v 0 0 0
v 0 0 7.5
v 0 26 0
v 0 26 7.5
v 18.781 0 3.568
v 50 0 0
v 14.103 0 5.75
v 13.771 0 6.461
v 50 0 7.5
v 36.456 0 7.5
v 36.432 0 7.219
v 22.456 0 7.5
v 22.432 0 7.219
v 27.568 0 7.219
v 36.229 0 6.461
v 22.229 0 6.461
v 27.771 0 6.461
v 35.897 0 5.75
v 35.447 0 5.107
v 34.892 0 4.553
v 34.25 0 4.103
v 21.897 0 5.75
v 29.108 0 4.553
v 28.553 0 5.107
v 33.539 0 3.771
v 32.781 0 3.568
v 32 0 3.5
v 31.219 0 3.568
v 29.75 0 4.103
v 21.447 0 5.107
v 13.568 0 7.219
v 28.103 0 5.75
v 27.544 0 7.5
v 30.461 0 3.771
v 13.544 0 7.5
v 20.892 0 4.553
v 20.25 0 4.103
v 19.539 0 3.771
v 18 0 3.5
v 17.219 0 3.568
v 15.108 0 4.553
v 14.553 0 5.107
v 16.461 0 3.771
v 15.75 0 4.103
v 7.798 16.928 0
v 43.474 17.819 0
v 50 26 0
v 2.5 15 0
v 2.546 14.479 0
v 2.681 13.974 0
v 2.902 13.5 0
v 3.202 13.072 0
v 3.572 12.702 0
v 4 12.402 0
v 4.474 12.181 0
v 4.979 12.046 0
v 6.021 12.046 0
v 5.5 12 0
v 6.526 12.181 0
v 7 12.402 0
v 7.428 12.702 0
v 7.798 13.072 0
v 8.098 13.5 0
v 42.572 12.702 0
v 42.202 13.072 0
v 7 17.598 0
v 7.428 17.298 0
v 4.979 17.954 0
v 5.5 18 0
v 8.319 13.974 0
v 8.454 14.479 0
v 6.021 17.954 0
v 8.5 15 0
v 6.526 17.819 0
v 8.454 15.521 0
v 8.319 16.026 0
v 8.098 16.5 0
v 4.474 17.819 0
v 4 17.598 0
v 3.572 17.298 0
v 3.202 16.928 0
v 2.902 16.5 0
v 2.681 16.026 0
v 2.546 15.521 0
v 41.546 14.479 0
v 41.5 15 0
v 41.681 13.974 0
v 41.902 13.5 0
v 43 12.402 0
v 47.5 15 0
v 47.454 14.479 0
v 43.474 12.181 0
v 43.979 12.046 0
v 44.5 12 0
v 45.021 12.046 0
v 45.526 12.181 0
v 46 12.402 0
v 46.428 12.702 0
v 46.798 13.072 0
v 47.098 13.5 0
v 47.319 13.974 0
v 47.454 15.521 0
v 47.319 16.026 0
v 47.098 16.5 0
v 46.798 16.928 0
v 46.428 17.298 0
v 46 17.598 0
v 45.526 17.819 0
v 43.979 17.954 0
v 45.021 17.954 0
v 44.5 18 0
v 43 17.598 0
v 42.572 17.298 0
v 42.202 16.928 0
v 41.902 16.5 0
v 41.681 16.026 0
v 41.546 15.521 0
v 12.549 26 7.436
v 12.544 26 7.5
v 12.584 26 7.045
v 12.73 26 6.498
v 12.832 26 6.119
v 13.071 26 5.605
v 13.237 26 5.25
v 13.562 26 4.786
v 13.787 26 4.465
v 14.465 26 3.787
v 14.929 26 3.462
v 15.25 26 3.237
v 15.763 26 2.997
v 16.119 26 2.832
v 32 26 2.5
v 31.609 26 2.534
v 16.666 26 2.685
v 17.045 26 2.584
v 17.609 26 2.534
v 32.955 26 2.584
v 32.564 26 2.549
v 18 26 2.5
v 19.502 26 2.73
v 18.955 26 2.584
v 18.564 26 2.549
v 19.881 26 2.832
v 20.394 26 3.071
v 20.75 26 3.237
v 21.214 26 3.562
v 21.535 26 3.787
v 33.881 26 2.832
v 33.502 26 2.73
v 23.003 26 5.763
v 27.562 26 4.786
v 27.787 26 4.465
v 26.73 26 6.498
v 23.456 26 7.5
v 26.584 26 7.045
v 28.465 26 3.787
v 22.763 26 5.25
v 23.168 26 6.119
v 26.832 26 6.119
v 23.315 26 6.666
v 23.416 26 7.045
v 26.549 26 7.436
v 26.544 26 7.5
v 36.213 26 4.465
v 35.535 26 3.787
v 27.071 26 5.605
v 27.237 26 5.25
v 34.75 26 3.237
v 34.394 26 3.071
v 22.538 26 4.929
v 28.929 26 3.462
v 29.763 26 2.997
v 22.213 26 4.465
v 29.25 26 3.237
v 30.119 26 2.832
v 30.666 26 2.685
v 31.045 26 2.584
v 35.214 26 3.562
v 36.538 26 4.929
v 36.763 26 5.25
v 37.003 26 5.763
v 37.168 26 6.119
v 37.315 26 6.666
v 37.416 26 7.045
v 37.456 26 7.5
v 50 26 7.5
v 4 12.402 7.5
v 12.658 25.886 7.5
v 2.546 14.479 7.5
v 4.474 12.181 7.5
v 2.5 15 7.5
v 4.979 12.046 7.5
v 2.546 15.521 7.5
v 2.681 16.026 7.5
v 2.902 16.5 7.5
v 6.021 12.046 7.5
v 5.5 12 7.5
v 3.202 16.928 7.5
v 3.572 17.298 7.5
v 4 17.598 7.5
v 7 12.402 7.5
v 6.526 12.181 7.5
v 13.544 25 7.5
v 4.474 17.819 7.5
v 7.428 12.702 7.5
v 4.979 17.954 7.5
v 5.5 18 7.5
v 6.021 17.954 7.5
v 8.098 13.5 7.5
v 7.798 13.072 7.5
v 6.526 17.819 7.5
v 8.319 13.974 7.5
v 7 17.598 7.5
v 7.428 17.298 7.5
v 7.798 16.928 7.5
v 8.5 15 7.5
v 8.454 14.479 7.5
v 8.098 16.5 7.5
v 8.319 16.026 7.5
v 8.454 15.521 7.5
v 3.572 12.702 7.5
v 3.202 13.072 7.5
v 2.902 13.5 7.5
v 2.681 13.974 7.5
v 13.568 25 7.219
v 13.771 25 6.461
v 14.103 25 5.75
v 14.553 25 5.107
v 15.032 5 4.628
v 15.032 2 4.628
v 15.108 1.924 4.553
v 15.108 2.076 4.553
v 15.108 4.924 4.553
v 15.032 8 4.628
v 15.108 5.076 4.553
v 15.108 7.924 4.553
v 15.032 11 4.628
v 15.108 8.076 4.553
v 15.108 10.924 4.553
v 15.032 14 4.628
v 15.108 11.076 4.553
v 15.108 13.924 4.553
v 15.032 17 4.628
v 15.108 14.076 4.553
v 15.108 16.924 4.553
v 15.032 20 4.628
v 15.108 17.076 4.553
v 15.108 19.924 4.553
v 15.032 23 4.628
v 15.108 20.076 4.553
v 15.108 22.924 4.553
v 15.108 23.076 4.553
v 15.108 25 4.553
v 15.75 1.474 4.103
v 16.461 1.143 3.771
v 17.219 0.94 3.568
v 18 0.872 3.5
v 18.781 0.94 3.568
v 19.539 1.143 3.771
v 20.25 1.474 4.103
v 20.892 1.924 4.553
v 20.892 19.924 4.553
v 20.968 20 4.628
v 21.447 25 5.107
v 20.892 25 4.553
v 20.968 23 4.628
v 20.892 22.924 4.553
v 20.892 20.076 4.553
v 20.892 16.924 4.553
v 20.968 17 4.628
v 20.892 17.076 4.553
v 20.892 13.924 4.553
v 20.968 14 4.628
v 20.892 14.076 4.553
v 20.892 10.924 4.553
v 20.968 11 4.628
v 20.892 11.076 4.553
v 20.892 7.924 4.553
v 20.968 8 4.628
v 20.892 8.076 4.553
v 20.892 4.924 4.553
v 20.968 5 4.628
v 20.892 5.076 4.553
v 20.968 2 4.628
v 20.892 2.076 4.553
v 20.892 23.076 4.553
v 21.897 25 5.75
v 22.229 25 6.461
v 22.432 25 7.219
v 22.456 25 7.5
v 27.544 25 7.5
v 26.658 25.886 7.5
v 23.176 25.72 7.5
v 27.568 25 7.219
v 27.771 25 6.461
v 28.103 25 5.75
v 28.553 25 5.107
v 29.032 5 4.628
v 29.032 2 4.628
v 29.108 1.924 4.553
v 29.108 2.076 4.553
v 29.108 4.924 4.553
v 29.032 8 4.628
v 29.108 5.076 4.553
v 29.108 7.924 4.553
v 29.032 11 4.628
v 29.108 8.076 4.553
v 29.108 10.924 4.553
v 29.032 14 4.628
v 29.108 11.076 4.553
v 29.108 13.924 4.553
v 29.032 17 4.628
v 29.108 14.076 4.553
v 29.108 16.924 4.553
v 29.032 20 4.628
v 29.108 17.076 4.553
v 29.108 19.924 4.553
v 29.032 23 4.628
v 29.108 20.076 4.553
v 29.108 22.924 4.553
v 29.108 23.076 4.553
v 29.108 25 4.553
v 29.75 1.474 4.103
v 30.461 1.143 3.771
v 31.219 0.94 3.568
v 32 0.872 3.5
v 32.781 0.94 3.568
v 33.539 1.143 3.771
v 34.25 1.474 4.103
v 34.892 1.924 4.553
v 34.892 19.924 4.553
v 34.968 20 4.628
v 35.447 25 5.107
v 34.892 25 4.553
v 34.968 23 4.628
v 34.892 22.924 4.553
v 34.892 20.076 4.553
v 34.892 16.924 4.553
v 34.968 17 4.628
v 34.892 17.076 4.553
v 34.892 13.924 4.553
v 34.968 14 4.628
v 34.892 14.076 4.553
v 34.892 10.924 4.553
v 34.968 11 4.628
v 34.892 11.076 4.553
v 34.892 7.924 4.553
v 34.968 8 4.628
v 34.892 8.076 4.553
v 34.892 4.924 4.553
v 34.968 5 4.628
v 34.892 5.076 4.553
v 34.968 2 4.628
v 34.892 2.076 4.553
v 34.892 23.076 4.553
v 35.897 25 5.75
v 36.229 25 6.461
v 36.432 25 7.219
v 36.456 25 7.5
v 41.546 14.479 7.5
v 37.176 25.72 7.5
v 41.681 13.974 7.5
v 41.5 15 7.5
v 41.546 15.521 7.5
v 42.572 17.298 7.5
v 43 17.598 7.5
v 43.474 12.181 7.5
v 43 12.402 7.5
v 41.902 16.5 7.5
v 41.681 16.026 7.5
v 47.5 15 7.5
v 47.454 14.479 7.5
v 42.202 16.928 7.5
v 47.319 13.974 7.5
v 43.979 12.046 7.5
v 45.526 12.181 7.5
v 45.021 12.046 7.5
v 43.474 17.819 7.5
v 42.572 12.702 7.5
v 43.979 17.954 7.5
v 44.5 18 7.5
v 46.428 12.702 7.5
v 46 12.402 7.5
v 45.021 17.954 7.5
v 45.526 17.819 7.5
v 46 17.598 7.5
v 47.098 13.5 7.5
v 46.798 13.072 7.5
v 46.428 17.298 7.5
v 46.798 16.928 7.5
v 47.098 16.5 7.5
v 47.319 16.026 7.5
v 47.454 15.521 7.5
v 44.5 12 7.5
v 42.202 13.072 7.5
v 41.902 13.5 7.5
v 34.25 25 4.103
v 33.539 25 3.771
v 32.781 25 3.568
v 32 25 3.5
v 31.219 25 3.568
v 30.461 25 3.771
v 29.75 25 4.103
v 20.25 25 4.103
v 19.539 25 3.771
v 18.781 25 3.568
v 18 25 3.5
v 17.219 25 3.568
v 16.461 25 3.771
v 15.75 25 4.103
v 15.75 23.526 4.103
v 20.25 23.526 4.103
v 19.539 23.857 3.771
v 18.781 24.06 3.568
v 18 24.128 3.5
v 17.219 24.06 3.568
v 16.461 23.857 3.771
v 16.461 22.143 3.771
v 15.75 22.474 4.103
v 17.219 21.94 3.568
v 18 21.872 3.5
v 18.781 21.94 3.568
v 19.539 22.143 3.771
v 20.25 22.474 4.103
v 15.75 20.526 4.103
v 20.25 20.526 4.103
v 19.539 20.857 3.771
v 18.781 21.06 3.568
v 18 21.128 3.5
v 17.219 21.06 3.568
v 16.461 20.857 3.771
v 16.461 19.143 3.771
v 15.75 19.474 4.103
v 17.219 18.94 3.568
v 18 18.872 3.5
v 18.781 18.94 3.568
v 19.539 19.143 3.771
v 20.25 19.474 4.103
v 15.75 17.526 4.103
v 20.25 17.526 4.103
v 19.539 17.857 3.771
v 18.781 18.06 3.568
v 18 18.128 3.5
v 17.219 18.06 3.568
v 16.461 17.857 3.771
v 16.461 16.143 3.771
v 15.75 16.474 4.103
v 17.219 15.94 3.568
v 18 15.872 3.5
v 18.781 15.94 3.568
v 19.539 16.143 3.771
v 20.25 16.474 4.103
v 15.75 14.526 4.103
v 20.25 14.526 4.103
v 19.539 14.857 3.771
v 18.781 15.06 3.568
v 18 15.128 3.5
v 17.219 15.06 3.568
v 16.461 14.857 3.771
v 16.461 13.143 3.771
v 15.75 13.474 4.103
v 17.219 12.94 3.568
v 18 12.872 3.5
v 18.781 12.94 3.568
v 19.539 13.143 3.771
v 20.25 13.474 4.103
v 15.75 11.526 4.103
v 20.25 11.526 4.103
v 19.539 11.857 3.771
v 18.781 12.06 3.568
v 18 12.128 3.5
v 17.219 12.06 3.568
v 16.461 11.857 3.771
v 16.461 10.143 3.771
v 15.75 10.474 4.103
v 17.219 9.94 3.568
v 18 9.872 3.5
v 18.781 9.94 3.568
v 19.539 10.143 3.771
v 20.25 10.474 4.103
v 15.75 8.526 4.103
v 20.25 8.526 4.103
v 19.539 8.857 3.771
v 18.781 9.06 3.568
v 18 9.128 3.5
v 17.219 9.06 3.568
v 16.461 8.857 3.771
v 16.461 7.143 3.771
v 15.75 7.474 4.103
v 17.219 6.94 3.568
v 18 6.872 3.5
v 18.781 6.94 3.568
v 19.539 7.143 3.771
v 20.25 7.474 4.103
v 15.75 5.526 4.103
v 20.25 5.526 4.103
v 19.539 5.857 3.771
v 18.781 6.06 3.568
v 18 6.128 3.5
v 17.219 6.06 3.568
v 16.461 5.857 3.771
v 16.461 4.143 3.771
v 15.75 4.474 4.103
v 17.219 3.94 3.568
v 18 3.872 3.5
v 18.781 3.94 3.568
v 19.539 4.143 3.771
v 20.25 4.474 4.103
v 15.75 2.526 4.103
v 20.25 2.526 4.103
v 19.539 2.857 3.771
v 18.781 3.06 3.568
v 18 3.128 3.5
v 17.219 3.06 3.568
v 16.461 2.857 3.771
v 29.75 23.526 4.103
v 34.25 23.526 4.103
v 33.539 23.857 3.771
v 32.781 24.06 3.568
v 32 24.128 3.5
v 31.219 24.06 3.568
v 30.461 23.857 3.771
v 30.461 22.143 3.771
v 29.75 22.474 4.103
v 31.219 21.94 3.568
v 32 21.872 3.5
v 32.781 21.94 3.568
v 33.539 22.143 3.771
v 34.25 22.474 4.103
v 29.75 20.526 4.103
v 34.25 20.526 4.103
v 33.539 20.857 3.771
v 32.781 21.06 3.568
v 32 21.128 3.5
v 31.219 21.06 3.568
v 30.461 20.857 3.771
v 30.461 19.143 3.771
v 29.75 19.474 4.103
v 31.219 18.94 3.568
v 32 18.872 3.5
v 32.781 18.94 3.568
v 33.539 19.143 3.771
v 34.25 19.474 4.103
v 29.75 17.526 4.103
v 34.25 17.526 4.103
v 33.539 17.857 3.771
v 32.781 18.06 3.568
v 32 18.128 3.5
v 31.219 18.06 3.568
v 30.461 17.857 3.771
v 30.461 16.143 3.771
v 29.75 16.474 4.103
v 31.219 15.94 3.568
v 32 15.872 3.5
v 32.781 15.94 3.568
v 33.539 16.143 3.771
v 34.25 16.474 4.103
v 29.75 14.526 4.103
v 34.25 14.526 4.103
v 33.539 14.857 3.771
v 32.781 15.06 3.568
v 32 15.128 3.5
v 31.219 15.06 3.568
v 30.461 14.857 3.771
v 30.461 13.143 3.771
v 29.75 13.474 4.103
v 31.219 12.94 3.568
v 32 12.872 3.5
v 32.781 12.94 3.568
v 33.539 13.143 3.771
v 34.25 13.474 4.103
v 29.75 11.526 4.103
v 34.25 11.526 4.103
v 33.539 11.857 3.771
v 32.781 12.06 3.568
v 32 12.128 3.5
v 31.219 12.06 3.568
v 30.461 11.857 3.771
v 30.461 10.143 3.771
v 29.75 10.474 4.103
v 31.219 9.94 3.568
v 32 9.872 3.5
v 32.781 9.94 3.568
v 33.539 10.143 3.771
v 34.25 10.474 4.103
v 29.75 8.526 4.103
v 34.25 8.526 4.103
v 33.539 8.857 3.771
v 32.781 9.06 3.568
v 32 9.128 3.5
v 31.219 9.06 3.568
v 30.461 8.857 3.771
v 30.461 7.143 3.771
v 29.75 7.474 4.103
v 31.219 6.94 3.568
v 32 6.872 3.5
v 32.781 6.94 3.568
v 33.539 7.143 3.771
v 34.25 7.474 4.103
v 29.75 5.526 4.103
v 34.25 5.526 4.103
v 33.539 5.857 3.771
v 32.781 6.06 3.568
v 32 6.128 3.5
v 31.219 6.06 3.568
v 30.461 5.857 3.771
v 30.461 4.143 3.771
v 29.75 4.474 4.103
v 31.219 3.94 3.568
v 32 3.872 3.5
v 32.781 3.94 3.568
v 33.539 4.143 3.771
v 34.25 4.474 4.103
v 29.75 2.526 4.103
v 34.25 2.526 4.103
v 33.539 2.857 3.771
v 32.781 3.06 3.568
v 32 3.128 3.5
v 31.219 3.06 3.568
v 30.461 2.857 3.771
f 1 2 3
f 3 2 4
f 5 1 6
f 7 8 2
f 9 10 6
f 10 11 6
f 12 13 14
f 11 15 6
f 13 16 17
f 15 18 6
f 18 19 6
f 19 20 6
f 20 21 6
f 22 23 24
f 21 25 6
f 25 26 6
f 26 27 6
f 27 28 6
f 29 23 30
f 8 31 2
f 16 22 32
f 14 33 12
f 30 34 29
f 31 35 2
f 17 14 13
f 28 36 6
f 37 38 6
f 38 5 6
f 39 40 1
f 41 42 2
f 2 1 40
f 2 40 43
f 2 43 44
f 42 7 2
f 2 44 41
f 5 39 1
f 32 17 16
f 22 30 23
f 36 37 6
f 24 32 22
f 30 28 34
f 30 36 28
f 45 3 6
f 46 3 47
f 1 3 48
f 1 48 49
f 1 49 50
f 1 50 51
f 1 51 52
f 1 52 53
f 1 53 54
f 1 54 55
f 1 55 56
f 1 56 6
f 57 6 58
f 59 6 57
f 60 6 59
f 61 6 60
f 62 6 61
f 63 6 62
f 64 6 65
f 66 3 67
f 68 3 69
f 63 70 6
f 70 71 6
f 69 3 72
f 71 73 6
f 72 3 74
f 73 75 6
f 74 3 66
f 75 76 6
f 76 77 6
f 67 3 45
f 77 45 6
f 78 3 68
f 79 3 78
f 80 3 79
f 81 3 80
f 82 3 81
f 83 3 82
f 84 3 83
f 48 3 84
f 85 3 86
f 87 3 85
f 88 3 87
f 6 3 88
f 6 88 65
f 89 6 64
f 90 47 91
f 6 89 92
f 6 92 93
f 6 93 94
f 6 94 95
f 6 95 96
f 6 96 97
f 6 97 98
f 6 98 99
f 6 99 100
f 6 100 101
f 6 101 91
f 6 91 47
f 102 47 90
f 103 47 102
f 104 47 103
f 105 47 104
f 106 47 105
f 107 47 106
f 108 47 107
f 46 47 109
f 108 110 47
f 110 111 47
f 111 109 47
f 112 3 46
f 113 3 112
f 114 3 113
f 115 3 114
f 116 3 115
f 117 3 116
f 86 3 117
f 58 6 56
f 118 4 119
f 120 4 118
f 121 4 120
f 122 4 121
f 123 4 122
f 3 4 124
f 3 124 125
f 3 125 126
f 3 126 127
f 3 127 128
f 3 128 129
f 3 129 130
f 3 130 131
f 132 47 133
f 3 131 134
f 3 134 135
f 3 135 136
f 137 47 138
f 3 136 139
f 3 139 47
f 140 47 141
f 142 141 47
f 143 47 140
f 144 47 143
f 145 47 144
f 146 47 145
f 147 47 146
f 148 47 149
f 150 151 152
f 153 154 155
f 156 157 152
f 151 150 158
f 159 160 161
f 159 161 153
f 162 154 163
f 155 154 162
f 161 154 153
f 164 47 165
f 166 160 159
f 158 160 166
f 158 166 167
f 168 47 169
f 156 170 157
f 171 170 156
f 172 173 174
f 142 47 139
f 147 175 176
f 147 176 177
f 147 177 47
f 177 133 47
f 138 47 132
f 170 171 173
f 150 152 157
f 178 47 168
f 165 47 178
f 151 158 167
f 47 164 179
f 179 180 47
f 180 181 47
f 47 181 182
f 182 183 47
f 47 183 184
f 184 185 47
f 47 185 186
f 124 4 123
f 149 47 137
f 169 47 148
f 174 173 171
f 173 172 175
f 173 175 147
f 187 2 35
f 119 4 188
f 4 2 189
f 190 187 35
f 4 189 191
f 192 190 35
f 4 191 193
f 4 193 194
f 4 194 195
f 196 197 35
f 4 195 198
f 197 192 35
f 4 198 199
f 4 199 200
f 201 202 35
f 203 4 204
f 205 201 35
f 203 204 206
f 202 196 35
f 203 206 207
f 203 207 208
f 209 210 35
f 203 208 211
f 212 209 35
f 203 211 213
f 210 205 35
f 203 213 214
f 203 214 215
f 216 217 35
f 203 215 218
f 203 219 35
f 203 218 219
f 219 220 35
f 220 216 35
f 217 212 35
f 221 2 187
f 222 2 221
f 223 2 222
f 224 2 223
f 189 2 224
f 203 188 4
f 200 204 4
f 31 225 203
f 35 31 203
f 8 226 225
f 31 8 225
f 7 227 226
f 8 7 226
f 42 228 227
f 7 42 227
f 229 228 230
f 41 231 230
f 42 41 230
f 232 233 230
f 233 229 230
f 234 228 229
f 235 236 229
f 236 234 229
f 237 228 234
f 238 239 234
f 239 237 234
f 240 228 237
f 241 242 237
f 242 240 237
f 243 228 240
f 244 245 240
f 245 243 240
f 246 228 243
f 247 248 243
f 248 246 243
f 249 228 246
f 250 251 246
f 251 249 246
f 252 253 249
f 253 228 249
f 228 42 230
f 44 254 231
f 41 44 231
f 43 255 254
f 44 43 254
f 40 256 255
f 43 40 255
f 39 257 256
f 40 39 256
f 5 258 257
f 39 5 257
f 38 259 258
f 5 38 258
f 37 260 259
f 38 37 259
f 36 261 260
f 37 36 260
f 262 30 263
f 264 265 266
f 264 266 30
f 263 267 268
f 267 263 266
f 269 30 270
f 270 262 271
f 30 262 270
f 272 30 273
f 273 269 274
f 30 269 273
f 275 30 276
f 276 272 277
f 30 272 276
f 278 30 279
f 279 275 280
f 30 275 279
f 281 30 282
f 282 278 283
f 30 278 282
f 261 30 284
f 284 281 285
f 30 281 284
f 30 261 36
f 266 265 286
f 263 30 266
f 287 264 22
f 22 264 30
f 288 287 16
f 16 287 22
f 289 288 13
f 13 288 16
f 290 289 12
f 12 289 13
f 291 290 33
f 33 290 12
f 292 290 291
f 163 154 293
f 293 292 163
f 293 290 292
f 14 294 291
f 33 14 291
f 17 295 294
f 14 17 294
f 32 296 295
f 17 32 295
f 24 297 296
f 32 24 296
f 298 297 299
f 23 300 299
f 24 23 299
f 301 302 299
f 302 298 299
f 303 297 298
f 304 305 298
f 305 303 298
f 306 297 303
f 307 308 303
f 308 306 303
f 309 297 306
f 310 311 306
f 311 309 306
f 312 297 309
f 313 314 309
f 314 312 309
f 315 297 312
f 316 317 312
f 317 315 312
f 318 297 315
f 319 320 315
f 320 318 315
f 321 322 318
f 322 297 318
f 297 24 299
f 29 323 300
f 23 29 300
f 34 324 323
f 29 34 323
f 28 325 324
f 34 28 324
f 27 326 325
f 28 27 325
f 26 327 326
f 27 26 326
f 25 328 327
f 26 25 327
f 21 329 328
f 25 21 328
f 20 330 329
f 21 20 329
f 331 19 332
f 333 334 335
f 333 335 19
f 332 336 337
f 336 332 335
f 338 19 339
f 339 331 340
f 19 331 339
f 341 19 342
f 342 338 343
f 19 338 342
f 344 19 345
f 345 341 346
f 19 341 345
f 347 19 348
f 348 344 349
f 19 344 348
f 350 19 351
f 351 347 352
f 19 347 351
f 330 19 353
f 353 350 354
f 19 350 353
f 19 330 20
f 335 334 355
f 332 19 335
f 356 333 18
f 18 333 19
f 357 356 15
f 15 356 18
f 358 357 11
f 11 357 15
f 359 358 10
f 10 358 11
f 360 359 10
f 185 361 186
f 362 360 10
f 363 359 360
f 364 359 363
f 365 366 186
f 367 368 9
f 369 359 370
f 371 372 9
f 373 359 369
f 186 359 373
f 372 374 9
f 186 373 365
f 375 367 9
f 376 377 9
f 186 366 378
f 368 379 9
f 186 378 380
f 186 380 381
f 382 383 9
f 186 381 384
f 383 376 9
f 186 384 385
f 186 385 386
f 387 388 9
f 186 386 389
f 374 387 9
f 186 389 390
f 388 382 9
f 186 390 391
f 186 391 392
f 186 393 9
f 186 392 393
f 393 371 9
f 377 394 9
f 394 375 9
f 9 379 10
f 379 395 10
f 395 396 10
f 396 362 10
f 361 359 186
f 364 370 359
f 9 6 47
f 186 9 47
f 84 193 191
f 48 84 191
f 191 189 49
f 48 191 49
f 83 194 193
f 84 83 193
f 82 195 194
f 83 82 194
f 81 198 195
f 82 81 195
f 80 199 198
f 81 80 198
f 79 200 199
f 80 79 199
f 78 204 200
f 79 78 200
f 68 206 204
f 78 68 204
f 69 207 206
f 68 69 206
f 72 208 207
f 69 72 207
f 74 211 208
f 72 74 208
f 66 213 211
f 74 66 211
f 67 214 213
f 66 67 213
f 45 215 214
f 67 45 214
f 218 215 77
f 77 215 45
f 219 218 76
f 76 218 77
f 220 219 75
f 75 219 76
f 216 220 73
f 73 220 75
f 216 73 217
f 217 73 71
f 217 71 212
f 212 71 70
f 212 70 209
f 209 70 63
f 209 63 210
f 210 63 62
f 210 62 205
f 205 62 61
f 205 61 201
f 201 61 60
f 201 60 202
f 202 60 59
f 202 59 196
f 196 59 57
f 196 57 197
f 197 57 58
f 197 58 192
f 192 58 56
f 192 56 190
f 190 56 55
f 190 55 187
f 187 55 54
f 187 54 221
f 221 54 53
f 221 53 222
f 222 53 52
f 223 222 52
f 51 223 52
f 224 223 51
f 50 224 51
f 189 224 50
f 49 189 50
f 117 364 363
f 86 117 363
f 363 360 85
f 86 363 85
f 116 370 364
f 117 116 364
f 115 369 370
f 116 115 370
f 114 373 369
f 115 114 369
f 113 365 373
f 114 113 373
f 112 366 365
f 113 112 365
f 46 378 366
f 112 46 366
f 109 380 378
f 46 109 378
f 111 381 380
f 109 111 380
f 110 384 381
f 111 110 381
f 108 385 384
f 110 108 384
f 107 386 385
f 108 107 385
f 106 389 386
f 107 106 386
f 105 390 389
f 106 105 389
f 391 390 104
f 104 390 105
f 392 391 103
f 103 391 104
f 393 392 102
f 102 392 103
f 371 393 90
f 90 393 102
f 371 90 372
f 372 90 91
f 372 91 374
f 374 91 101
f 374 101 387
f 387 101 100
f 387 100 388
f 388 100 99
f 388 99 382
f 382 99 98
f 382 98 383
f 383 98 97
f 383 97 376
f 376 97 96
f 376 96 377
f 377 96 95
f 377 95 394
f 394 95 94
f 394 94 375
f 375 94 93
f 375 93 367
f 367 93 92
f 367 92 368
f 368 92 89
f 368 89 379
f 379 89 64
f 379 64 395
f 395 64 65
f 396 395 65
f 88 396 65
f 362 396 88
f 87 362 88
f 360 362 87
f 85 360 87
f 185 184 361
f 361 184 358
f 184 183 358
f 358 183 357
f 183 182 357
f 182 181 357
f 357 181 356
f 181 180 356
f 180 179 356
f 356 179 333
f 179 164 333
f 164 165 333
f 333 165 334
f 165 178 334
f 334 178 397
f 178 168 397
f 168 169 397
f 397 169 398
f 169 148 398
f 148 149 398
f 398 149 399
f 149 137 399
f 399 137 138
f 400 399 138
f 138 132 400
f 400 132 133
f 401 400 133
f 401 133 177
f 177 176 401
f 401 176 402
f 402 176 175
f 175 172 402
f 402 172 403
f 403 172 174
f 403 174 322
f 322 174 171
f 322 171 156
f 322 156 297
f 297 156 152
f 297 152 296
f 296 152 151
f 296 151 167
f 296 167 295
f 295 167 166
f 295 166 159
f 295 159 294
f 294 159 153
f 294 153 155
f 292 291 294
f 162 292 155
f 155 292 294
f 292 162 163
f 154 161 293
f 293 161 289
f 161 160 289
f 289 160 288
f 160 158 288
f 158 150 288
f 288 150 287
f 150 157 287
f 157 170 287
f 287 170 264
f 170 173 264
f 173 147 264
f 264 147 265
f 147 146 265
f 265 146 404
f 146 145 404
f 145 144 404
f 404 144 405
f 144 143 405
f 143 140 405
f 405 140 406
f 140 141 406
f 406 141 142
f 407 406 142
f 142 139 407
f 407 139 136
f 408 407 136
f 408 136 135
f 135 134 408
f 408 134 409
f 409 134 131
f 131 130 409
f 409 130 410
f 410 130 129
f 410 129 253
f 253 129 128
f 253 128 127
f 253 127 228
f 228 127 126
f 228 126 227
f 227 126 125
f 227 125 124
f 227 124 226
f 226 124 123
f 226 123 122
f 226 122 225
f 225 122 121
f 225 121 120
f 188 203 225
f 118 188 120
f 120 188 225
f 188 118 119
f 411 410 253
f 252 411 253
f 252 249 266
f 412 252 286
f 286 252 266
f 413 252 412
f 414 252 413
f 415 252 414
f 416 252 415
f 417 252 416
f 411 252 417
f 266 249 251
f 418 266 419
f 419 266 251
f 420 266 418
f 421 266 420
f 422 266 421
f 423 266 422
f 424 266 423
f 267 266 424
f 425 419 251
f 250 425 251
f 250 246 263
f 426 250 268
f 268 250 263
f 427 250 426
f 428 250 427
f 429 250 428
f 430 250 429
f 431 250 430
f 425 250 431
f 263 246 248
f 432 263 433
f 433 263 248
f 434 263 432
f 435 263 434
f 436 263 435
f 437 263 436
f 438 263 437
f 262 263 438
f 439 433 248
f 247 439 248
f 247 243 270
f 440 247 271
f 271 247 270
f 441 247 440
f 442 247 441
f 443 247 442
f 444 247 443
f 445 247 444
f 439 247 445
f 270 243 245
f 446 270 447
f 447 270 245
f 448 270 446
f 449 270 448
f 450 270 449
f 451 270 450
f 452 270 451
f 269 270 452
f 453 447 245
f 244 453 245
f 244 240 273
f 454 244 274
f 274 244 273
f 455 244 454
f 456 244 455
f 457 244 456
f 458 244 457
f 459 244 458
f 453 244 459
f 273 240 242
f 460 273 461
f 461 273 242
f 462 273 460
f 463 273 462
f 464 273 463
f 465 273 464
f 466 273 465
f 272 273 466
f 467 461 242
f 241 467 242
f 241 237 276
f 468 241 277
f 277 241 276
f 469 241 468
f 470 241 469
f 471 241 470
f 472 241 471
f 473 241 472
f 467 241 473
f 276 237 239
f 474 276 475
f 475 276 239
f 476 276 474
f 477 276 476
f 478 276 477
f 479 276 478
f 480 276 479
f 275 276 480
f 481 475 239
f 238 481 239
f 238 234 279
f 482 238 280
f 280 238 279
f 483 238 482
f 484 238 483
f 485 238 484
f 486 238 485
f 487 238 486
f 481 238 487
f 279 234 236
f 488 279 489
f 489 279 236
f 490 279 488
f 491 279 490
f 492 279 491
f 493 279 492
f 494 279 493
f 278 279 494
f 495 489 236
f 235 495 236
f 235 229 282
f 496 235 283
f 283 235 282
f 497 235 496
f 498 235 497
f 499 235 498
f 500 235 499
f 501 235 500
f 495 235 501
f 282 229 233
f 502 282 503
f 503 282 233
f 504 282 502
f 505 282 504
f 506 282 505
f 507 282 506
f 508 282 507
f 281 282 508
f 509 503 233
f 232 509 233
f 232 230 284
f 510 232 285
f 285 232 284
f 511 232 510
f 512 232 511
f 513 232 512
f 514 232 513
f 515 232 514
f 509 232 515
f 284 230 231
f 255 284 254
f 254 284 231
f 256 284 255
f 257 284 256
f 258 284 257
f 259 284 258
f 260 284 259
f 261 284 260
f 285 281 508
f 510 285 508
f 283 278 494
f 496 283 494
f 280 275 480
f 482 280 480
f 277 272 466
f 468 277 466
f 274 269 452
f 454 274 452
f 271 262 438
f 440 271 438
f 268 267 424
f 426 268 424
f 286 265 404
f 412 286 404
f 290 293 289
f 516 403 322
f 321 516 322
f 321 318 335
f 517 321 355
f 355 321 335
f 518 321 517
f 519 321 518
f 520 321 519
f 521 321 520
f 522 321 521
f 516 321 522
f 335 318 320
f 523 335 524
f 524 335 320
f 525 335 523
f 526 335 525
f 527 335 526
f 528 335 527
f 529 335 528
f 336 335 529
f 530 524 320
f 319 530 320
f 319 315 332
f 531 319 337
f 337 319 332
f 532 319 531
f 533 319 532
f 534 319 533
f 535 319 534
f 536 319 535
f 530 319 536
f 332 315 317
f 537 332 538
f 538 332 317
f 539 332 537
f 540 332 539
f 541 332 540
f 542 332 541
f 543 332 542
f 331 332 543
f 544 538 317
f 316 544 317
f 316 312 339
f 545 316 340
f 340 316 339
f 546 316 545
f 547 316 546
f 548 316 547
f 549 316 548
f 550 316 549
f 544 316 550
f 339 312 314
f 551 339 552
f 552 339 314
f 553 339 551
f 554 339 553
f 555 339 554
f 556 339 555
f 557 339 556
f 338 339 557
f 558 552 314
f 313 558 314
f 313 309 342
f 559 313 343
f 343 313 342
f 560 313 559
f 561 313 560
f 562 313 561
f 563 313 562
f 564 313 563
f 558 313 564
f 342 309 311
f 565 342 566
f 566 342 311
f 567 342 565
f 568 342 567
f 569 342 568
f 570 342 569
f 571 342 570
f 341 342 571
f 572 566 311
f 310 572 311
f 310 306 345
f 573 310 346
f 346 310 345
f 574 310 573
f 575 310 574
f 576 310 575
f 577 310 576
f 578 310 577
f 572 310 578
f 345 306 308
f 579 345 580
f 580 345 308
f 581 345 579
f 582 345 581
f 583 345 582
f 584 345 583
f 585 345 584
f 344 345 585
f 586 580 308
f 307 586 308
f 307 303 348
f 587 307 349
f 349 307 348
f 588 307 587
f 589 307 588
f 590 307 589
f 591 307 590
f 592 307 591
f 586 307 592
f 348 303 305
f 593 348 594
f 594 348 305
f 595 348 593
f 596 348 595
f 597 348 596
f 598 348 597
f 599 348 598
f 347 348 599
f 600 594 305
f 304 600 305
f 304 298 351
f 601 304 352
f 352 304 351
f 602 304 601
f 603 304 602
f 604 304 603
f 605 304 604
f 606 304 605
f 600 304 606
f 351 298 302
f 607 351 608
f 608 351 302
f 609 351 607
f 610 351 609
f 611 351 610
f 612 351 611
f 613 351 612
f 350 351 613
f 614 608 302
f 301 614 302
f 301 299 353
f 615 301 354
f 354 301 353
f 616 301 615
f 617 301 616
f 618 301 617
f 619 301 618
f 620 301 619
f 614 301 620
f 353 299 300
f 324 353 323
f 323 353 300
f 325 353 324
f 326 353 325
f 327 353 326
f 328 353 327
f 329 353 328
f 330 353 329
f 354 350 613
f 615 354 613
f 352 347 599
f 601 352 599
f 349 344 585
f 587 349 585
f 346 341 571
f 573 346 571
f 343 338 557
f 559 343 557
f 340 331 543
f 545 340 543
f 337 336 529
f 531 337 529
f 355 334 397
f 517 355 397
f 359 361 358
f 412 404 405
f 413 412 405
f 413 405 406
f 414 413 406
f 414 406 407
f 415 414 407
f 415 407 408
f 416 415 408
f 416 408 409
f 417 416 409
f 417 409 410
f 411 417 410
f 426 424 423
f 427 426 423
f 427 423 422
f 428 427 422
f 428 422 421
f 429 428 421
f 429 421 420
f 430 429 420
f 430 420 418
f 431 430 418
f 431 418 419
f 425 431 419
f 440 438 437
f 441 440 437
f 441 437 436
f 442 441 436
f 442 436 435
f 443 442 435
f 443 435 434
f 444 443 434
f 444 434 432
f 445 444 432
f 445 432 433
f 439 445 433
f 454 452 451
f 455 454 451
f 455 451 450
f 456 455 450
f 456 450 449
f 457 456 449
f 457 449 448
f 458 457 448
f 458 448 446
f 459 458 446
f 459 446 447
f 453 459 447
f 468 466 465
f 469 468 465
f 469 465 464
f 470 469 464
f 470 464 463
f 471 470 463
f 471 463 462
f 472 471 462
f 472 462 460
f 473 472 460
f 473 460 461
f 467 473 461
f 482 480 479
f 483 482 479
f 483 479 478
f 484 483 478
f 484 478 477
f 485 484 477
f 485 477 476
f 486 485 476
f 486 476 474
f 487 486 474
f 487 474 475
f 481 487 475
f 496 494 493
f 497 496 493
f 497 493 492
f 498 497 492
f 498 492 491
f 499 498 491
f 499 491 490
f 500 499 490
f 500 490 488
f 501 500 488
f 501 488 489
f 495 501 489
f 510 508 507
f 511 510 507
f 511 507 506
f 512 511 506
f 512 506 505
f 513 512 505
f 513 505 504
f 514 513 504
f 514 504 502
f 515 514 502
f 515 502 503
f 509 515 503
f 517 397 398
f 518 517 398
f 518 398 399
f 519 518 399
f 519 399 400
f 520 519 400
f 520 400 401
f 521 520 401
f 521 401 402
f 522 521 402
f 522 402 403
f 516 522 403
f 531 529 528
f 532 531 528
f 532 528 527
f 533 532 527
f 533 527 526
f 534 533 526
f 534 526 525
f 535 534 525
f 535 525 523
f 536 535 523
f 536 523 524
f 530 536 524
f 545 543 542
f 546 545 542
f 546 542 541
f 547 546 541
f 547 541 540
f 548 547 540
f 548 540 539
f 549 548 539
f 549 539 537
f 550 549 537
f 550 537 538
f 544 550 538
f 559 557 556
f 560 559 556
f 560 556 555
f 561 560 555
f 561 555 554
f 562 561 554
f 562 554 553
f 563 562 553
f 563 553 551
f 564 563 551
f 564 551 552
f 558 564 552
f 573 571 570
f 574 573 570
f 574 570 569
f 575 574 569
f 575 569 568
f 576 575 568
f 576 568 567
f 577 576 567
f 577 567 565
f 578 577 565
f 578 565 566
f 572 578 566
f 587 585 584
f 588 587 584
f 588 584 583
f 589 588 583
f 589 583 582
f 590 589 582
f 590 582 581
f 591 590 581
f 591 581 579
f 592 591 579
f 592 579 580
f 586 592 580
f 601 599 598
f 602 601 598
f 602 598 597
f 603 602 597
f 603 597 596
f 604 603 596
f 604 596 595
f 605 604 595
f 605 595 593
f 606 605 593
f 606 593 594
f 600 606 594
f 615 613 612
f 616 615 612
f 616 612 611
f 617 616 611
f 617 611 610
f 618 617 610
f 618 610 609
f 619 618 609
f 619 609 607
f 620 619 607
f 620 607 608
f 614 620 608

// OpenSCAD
$fn=36;


union()
{
	difference()
	{
		translate([0,0,0]) cube([50,26,7.5]);
		
		translate([5.5, 15, -1]) cylinder(30,3,3);
		translate([44.5, 15, -1]) cylinder(30,3,3);
	
		translate([18,-1,8]) rotate([-90,0,0]) cylinder(32, 4.5, 4.5);
		translate([18,25,8]) rotate([-90,0,0]) cylinder(2, 4.5, 6.5);
	
		translate([32,-1,8]) rotate([-90,0,0]) cylinder(32, 4.5, 4.5);
		translate([32,25,8]) rotate([-90,0,0]) cylinder(2, 4.5, 6.5);
	}

		translate([10,2,1.8]) rotate([45,0,0]) cube([30,2,2]);
		translate([10,5,1.8]) rotate([45,0,0]) cube([30,2,2]);
		translate([10,8,1.8]) rotate([45,0,0]) cube([30,2,2]);
		translate([10,11,1.8]) rotate([45,0,0]) cube([30,2,2]);
		translate([10,14,1.8]) rotate([45,0,0]) cube([30,2,2]);
		translate([10,17,1.8]) rotate([45,0,0]) cube([30,2,2]);
		translate([10,20,1.8]) rotate([45,0,0]) cube([30,2,2]);
		translate([10,23,1.8]) rotate([45,0,0]) cube([30,2,2]);
}
